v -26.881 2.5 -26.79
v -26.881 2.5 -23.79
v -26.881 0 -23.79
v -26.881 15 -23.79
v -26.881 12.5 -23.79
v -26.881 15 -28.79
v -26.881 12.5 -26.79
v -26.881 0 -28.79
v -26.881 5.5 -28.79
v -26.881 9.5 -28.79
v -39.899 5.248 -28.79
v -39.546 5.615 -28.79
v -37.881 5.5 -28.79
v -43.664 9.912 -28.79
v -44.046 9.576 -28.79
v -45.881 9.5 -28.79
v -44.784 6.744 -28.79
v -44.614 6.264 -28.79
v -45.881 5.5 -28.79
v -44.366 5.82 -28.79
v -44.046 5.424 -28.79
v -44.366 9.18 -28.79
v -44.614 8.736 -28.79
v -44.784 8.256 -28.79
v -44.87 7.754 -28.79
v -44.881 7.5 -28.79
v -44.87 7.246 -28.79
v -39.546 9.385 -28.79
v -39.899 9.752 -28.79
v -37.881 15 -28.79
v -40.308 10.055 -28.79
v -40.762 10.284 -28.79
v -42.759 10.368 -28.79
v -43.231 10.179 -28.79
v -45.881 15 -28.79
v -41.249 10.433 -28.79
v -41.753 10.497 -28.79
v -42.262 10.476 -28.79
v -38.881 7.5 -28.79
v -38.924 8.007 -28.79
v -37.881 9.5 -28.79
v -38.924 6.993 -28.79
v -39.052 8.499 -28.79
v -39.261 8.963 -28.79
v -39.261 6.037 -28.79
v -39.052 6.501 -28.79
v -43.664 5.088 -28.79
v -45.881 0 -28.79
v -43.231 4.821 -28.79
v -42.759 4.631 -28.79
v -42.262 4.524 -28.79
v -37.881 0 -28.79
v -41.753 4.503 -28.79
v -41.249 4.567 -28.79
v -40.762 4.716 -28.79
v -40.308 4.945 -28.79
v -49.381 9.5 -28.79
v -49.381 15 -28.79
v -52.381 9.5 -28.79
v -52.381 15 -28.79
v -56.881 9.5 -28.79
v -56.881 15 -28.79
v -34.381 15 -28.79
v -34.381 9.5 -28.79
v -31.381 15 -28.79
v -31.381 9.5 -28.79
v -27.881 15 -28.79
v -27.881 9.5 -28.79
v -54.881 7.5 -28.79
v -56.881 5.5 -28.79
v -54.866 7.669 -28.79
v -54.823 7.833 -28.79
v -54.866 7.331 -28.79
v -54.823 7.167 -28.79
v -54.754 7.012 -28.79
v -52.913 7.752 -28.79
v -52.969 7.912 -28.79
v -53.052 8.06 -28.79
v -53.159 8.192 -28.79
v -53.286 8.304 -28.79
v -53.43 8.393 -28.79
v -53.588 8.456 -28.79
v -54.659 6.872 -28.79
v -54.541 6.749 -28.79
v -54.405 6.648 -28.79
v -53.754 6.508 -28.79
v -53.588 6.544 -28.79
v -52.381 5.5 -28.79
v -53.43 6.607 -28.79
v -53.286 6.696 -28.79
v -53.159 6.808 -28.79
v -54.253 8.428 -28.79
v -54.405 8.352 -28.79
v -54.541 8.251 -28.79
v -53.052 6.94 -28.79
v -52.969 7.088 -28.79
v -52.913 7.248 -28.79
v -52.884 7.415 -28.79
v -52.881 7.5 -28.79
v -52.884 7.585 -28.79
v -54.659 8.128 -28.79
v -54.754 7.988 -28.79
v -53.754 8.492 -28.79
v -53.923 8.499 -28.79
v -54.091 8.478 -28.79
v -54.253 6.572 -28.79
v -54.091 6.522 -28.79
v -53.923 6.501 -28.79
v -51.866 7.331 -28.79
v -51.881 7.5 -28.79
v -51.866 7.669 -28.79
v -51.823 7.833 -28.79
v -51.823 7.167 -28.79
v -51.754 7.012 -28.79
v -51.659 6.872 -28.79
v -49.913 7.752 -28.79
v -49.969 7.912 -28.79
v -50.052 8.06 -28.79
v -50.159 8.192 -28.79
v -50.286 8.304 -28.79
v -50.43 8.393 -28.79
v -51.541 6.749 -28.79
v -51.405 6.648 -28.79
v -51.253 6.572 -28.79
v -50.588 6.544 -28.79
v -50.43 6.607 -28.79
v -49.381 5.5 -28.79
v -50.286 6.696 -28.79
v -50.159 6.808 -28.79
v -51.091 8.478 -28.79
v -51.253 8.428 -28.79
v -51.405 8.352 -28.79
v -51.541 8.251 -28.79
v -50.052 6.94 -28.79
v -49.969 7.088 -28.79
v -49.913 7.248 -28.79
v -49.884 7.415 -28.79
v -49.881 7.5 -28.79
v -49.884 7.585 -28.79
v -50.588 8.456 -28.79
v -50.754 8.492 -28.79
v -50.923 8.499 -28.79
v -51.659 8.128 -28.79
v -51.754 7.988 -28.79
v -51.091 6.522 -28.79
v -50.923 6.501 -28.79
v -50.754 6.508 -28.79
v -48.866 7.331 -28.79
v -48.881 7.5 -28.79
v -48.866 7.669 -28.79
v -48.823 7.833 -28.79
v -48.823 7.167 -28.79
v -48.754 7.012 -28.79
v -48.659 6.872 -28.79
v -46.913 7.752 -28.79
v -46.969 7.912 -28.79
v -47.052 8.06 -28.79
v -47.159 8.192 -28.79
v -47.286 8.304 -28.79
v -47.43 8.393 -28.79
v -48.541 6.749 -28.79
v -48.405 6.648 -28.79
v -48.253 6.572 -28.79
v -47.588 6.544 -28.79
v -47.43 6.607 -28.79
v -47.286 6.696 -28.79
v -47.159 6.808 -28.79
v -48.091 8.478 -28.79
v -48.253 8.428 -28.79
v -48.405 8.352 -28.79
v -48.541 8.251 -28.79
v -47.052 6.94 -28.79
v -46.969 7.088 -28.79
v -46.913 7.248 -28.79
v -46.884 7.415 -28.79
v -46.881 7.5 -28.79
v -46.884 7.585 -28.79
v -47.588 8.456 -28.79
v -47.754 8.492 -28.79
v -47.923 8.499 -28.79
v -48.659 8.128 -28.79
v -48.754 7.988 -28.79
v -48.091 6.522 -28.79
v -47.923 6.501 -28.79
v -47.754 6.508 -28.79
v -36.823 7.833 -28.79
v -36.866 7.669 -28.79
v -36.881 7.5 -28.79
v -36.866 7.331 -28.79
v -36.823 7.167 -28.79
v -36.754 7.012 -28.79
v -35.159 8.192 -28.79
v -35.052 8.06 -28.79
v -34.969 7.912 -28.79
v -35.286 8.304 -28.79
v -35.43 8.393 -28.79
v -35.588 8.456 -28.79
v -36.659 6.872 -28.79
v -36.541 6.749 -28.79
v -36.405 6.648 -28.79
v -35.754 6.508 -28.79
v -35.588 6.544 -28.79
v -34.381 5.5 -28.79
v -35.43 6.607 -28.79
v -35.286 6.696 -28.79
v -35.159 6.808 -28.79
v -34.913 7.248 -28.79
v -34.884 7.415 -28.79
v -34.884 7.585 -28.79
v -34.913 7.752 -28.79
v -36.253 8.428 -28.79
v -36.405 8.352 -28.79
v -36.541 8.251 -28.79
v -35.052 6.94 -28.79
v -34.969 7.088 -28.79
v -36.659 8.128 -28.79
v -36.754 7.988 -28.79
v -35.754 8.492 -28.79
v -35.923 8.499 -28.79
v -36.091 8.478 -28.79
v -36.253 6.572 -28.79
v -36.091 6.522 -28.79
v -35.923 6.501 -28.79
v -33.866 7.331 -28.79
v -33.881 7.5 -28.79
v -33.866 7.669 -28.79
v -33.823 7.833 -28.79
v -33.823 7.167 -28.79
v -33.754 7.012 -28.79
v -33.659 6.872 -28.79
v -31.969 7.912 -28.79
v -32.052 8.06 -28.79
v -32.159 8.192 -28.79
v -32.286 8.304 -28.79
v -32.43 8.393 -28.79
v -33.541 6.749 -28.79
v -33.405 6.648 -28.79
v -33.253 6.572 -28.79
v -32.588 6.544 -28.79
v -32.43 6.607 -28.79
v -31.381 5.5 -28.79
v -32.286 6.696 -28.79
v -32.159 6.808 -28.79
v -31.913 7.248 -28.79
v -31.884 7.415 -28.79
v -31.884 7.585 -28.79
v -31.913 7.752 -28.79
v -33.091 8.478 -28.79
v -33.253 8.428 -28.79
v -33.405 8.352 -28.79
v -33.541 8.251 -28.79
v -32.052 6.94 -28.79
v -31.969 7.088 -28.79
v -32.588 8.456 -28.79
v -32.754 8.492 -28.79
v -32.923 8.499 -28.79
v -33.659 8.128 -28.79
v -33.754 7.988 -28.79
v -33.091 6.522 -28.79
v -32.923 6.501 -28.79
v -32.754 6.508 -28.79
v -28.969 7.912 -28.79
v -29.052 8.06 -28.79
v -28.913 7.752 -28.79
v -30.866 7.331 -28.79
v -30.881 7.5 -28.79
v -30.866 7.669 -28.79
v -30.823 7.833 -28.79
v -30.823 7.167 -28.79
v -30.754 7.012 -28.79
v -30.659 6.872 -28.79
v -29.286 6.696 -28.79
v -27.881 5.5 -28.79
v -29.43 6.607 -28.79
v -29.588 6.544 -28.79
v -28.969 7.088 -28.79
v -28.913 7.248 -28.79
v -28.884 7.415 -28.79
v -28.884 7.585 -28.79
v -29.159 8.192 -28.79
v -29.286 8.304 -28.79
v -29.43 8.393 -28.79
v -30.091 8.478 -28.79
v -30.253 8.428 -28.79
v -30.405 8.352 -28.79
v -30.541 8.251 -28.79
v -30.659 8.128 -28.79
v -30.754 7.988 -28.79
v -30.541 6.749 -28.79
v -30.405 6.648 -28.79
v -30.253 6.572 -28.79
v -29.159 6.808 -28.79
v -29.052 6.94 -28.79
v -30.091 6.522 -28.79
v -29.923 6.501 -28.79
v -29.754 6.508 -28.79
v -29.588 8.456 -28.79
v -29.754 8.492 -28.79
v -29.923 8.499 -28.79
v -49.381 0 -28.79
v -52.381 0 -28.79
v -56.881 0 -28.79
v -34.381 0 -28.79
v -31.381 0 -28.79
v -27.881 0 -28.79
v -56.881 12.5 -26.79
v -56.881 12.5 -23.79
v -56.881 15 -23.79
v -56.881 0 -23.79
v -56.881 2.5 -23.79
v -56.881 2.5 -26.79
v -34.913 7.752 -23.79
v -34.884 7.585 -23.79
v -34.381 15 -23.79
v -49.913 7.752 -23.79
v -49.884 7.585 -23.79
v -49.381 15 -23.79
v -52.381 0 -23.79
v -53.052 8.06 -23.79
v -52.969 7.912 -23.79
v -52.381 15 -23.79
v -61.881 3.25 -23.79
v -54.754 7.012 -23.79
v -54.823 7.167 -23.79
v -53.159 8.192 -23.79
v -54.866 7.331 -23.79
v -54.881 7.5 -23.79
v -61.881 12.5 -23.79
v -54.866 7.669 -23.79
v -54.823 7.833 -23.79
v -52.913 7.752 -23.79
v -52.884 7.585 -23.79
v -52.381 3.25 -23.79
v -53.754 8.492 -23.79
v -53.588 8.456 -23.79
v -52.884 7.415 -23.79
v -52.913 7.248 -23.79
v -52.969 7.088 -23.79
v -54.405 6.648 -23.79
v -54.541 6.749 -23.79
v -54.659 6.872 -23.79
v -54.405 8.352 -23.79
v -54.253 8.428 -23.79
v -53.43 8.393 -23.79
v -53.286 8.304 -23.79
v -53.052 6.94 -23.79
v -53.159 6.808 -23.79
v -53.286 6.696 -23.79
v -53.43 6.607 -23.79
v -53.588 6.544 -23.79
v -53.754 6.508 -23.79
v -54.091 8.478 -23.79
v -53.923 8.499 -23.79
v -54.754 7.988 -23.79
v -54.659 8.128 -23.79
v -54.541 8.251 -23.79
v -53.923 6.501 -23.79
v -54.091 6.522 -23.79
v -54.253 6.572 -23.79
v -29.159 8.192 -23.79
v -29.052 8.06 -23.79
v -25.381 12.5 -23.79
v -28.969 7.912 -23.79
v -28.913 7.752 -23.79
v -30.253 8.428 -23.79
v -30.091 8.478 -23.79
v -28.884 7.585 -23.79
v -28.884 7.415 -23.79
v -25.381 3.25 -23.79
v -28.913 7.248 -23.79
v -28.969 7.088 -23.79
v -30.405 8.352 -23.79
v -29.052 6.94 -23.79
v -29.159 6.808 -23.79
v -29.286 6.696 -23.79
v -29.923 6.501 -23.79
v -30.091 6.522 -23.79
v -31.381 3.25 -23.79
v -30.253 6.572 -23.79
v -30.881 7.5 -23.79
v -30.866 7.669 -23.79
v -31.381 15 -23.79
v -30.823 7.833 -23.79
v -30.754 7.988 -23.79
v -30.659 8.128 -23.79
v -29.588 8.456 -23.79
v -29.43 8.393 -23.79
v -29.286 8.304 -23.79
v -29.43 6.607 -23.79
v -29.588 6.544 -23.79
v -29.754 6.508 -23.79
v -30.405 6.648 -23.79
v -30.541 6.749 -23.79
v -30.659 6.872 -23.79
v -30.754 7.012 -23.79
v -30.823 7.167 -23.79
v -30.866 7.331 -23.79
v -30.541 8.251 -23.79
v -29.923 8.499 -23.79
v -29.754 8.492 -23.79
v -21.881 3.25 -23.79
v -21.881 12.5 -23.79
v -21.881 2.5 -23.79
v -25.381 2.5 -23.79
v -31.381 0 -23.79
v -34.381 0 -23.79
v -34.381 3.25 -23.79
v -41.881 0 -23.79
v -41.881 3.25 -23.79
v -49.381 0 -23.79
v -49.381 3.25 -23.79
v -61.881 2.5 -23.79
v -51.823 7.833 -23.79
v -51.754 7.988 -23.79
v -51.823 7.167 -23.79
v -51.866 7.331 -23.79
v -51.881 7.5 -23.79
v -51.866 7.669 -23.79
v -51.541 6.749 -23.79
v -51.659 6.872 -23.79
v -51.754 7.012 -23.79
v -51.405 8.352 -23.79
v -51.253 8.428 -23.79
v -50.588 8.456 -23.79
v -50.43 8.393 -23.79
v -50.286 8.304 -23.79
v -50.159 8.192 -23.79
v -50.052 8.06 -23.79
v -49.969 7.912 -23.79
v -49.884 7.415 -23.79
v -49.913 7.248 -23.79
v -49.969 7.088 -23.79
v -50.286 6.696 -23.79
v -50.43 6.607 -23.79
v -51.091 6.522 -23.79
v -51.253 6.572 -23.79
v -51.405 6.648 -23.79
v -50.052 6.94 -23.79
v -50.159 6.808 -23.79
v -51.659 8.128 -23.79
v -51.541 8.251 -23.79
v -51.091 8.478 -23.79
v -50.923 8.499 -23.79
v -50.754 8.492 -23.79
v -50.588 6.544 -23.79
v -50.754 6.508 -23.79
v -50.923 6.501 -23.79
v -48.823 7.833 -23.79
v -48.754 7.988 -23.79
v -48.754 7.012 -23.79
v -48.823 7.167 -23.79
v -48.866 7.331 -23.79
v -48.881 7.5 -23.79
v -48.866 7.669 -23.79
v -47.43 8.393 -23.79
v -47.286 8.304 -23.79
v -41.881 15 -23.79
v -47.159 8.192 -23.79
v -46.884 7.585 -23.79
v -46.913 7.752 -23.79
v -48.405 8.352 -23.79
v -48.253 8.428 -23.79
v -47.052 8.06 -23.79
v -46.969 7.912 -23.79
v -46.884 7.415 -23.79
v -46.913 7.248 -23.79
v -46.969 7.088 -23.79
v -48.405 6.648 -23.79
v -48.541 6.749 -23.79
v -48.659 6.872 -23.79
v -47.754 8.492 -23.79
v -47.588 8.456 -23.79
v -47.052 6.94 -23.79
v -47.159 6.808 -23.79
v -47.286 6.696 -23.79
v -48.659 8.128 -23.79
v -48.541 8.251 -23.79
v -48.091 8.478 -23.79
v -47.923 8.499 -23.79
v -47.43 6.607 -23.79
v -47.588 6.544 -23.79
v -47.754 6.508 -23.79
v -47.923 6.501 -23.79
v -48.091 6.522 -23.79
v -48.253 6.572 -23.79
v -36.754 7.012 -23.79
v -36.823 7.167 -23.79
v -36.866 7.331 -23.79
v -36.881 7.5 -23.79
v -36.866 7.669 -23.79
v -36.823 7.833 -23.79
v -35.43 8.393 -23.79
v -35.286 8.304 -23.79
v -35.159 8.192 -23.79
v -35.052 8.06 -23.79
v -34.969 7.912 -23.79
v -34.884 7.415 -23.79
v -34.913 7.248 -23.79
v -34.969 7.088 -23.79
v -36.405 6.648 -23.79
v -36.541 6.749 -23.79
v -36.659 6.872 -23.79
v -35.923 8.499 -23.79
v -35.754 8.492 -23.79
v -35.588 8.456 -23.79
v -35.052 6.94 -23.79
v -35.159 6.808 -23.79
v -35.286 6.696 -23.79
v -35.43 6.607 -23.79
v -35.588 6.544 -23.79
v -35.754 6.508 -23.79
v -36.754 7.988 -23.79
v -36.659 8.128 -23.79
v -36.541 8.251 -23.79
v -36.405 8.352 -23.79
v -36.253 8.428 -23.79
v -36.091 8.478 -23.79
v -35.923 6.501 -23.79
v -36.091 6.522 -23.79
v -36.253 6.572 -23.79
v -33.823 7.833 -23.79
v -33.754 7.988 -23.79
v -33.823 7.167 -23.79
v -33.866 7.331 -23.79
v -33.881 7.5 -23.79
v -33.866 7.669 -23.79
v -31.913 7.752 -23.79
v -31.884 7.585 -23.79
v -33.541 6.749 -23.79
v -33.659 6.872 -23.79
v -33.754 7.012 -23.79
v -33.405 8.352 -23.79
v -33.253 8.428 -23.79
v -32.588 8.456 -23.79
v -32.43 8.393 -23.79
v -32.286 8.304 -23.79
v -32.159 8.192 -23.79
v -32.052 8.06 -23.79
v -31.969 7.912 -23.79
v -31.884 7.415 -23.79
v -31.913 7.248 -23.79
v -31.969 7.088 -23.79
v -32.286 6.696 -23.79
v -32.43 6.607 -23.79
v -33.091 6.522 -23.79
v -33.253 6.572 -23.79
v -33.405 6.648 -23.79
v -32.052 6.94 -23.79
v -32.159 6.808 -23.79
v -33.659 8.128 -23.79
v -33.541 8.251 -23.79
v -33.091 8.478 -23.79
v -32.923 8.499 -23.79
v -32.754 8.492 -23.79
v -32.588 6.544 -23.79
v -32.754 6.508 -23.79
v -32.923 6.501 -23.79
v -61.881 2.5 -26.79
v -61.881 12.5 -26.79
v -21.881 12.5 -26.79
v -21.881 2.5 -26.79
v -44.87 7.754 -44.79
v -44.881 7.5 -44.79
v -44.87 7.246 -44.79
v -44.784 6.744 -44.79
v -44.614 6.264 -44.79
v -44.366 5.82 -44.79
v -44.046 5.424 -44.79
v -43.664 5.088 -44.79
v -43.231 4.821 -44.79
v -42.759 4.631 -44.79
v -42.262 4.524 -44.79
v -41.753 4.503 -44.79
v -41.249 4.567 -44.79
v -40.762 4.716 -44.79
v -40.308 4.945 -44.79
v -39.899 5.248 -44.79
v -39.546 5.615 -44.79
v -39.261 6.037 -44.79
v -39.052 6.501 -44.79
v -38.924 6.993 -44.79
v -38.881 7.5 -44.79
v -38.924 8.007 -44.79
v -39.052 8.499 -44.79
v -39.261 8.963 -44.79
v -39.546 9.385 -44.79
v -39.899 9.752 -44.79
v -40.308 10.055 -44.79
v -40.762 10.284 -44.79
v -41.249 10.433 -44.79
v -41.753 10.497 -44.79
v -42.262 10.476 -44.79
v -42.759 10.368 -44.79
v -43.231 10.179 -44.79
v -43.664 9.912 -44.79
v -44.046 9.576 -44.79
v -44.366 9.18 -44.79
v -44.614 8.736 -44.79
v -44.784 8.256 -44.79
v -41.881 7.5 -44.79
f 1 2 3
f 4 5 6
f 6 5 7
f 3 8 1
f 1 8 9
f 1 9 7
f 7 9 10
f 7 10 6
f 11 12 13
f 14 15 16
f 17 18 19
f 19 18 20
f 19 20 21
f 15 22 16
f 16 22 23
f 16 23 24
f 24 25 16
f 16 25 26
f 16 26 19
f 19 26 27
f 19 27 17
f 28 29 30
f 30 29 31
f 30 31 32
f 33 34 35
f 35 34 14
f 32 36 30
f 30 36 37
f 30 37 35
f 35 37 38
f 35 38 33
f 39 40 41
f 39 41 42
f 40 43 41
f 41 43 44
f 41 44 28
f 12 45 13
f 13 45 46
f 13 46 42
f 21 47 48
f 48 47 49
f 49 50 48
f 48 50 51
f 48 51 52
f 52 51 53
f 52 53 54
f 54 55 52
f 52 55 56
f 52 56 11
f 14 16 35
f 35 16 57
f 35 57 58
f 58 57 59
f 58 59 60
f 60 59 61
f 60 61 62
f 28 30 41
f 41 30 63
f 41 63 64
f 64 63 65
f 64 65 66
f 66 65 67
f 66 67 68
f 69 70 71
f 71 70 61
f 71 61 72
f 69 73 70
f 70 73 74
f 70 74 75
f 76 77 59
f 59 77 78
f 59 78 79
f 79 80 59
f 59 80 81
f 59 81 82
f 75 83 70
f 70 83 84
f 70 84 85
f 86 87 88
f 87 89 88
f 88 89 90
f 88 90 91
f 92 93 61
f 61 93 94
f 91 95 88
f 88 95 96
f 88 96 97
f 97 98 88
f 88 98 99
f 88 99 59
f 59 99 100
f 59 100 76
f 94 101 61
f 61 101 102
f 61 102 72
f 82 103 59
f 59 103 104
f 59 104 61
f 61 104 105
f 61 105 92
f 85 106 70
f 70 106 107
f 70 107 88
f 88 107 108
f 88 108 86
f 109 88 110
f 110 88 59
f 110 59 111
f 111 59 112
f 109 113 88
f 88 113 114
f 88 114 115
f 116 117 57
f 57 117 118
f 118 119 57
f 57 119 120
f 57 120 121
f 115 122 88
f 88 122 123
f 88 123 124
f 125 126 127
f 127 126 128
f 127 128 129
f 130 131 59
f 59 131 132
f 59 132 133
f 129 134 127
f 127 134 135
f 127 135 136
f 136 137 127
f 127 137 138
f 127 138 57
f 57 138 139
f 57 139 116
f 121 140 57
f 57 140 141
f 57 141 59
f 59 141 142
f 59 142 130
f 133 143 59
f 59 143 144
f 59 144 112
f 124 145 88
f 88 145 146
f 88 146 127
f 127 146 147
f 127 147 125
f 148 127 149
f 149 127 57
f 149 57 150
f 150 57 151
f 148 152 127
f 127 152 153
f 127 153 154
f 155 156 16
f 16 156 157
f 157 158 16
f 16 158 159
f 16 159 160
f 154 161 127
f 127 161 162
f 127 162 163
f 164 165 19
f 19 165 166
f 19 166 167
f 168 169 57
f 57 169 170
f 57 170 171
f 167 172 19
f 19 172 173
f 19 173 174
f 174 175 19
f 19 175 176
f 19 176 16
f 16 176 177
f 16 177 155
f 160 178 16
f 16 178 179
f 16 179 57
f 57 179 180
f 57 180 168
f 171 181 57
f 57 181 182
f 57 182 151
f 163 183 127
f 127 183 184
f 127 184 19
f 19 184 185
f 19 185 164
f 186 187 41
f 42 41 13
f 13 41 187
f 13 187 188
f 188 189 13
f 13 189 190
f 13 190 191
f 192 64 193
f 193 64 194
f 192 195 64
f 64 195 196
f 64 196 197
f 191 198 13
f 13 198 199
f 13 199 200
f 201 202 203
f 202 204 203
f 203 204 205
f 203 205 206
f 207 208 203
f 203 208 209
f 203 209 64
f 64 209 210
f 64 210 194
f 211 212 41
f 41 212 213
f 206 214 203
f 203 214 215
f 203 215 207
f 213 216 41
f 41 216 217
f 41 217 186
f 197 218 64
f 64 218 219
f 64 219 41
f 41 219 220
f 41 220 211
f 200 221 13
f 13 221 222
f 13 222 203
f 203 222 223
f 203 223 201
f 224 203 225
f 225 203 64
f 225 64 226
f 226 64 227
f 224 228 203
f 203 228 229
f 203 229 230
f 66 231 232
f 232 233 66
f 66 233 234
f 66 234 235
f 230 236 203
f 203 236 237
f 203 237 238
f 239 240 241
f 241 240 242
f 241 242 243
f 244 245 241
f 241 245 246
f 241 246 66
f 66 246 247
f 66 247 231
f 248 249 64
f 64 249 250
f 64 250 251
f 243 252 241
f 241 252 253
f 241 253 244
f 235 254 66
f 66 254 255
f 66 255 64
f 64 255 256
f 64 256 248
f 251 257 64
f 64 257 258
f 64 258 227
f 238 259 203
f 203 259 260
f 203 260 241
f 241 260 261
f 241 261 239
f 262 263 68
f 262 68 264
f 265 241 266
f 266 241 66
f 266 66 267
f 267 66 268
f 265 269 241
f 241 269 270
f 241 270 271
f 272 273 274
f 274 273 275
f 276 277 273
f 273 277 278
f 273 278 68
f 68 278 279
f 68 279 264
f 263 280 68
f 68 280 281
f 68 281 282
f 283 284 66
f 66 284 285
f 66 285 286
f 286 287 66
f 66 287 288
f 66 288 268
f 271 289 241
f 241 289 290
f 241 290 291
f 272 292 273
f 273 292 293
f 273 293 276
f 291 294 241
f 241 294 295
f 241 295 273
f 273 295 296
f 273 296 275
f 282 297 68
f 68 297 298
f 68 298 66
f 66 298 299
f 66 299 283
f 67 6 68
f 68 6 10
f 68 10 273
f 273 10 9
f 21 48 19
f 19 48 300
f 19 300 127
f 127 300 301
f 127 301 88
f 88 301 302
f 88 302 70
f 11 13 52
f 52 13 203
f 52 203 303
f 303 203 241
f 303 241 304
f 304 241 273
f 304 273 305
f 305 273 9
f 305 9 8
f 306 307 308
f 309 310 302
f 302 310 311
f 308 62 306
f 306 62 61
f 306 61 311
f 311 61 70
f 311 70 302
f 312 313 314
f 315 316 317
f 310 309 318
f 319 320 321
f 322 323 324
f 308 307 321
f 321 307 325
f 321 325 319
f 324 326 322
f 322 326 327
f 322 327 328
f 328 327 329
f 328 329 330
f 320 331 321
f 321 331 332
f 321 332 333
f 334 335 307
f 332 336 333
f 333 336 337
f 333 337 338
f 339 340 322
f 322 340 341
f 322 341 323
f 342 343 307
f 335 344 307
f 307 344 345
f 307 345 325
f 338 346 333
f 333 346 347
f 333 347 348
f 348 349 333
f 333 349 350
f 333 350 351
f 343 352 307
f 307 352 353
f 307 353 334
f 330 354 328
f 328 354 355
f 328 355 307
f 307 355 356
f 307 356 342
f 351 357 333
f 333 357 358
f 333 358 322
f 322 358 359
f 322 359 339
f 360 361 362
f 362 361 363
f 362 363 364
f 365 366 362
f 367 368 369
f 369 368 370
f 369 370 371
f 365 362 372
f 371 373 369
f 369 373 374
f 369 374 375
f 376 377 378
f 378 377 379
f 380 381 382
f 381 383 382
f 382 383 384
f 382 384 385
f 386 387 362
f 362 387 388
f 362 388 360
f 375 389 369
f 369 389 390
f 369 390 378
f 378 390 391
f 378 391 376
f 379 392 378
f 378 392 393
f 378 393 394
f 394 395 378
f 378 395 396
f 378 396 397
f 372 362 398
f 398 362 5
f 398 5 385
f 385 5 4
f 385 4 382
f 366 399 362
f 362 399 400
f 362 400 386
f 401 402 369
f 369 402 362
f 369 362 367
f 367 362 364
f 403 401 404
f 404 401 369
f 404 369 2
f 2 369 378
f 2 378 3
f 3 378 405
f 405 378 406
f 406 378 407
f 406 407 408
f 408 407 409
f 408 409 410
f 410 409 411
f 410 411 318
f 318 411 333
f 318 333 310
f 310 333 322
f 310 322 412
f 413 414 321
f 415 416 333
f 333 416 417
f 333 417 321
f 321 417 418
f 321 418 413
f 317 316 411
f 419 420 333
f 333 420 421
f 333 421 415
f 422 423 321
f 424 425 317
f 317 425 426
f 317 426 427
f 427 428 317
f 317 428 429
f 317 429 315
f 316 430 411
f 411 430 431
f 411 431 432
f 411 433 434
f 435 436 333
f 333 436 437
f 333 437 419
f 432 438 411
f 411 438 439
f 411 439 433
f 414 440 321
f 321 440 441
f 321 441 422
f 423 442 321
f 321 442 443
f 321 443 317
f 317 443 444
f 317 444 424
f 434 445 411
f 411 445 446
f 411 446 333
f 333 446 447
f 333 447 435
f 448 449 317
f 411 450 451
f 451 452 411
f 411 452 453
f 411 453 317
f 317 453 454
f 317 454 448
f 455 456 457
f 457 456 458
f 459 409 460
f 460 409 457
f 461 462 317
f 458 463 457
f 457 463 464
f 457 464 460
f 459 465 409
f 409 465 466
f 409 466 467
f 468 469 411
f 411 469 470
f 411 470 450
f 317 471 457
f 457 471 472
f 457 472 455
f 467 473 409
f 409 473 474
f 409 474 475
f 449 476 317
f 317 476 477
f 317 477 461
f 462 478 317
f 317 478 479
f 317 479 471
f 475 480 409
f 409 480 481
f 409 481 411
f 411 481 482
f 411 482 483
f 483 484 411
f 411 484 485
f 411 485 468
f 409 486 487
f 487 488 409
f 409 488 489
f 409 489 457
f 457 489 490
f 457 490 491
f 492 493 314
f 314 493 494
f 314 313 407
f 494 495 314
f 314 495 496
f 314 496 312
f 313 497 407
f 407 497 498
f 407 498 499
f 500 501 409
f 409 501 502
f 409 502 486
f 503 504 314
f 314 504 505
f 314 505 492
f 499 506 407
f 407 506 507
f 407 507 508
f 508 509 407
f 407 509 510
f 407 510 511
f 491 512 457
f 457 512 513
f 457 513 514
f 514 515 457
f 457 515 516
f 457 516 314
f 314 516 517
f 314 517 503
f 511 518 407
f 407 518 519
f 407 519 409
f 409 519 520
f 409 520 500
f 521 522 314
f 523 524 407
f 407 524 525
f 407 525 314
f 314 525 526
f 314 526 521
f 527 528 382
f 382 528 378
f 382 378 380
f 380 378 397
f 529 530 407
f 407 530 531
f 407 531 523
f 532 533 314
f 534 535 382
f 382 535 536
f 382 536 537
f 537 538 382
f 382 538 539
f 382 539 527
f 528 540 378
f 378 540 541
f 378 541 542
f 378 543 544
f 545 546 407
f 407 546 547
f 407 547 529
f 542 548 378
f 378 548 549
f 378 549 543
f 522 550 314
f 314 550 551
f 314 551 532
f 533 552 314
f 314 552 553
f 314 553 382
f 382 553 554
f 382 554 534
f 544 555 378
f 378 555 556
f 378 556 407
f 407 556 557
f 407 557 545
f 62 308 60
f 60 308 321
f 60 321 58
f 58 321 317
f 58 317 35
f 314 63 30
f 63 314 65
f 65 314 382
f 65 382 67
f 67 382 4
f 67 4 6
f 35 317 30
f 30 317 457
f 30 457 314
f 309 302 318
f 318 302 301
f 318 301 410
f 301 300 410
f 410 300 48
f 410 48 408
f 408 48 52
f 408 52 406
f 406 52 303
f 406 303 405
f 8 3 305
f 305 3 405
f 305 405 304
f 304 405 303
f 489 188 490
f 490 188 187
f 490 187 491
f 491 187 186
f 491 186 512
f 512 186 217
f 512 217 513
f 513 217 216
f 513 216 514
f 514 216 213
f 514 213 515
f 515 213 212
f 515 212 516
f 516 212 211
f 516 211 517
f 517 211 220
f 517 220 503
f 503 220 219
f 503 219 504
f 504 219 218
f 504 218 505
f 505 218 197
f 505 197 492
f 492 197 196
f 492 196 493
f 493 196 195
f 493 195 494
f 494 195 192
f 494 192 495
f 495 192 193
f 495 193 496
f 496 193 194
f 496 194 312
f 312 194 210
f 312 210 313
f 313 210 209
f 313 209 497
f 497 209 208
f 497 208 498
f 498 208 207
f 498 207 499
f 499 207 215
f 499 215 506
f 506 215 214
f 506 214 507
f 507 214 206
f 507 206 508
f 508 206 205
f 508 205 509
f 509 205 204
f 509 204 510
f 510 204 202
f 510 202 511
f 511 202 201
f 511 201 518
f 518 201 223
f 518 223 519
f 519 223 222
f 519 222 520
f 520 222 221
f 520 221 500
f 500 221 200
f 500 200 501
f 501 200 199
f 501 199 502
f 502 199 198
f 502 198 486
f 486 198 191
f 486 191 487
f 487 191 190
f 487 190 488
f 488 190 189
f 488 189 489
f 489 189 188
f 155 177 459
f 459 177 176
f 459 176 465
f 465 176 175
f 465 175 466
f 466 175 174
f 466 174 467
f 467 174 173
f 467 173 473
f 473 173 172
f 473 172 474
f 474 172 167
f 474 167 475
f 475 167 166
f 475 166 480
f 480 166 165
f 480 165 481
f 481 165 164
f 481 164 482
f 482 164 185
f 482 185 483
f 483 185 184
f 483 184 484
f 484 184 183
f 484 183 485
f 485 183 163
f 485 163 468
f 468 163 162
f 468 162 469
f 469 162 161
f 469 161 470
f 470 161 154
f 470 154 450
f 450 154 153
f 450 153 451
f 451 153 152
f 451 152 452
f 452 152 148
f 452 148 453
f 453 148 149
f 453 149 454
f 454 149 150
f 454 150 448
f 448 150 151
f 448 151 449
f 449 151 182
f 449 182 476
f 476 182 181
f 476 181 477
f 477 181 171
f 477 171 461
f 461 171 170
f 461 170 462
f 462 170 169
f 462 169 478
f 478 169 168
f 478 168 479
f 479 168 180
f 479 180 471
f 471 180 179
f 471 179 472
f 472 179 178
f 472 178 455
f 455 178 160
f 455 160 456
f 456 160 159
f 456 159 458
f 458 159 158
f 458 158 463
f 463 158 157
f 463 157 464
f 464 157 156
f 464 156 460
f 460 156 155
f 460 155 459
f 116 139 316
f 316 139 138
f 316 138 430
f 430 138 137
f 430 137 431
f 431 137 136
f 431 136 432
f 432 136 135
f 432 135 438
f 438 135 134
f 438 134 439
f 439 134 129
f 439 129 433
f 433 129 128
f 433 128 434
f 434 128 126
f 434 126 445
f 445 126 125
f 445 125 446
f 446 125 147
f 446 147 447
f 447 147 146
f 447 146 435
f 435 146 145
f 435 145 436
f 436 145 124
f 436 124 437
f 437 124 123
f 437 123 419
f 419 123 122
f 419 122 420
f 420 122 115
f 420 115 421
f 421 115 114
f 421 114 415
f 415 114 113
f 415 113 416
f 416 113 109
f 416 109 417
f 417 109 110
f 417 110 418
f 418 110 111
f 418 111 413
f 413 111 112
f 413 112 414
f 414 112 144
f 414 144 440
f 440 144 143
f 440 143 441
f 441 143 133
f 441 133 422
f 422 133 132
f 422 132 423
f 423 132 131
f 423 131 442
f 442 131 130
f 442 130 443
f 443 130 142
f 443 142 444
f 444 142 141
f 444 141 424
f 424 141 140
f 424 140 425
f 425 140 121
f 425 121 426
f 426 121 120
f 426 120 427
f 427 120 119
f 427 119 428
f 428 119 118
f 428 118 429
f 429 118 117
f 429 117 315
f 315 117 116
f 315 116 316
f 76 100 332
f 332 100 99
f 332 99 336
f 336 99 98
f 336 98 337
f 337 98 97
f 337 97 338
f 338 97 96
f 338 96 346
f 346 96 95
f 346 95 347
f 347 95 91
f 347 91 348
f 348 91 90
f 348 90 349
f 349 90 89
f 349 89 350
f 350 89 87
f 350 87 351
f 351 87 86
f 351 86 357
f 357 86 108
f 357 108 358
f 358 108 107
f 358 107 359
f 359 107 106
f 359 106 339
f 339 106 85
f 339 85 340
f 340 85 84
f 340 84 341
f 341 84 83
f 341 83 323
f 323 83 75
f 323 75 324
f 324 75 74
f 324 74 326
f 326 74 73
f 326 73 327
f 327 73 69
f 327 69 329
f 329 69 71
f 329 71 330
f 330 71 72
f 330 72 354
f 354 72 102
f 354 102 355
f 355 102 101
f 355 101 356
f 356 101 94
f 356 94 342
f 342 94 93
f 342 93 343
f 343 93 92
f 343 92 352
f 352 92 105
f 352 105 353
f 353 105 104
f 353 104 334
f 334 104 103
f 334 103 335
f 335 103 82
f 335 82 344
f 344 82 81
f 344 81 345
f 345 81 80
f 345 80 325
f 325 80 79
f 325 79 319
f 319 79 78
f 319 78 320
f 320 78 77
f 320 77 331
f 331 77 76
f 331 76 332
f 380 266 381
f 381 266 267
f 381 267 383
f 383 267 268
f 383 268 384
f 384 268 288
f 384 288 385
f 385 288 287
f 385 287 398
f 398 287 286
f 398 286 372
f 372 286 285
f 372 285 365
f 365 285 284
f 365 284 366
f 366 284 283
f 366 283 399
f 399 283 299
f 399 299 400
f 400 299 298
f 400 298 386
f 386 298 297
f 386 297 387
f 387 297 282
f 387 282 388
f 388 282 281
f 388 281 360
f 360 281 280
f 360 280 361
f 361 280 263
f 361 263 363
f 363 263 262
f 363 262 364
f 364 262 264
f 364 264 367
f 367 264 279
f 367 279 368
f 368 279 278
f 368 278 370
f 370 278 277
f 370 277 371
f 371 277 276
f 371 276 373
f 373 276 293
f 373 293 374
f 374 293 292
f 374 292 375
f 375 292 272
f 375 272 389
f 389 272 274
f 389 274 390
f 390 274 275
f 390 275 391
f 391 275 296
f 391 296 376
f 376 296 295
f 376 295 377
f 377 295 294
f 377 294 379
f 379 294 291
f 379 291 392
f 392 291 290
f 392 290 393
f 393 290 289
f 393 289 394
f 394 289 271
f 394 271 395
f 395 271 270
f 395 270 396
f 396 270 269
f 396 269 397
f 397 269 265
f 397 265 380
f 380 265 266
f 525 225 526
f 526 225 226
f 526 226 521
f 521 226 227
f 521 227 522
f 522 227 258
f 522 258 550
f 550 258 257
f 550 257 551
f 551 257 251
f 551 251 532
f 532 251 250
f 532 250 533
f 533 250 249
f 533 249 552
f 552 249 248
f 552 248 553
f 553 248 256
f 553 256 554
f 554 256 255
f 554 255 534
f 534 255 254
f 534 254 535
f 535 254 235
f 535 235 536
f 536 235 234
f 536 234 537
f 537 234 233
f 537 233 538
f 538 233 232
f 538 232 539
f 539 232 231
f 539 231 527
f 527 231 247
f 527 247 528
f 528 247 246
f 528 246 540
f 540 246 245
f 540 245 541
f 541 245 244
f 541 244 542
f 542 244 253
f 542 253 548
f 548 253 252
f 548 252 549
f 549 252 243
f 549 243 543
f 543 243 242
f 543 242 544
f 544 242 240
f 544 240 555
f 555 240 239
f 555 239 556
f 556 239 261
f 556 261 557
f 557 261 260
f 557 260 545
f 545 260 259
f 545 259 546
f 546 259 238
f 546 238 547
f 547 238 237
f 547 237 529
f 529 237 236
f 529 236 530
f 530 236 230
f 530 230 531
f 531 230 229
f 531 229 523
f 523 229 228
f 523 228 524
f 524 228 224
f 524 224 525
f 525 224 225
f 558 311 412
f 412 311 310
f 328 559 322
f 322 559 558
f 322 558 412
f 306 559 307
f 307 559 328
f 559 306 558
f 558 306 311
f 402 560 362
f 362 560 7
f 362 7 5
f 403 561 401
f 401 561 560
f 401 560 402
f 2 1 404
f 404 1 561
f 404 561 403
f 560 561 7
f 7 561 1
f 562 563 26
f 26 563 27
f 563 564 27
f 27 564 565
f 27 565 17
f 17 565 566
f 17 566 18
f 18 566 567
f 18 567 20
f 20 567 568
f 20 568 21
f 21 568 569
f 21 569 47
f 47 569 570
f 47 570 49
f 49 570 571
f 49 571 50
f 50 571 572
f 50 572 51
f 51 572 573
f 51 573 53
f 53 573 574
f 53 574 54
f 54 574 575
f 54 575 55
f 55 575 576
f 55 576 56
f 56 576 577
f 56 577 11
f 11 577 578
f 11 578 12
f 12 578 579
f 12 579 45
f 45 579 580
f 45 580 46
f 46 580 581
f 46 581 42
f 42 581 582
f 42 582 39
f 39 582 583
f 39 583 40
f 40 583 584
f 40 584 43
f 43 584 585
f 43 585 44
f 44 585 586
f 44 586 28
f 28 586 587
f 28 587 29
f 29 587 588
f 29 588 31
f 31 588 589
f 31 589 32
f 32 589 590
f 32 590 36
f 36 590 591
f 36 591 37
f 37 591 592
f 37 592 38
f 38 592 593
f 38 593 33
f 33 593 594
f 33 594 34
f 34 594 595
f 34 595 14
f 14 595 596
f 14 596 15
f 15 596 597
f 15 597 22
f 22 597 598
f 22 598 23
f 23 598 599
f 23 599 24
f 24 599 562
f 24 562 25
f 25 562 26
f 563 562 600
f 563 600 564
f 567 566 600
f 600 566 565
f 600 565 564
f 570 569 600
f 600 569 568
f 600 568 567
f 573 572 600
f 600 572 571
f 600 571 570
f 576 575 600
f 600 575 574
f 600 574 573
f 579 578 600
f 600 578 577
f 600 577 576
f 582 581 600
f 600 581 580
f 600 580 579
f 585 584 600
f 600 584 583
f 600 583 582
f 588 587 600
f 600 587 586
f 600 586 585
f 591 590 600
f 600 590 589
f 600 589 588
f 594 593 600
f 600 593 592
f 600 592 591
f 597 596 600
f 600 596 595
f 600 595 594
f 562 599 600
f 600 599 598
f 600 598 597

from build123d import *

# Parameters (mm, degrees)
SKETCH1_W           = 30
SKETCH1_H           = 5
BOSS_EXTRUDE1_DEPTH = 15
SKETCH3_R           = 1
CUT_EXTRUDE2_DEPTH  = 5
SKETCH5_W           = 5
SKETCH5_H           = 10
BOSS_EXTRUDE2_DEPTH = 3
SKETCH4_R           = 3
BOSS_EXTRUDE3_DEPTH = 16


with BuildPart() as part:
    # Sketch1 → Boss-Extrude1 (new body)
    with BuildSketch(Plane(origin=(0, 0, 0), x_dir=(1, 0, 0), z_dir=(0, 1, 0))):
        with Locations((-41.880536913, 26.290268456)):
            Rectangle(SKETCH1_W, SKETCH1_H)
    extrude(amount=BOSS_EXTRUDE1_DEPTH)

    # Sketch3 → Cut-Extrude2 (cut)
    with BuildSketch(Plane(origin=(0, 0, -28.790268456), x_dir=(-1, 0, 0), z_dir=(0, 0, -1))):
        with Locations((35.880536913, 7.5)):
            Circle(SKETCH3_R)
        with Locations((32.880536913, 7.5)):
            Circle(SKETCH3_R)
        with Locations((29.880536913, 7.5)):
            Circle(SKETCH3_R)
        with Locations((53.880536913, 7.5)):
            Circle(SKETCH3_R)
        with Locations((50.880536913, 7.5)):
            Circle(SKETCH3_R)
        with Locations((47.880536913, 7.5)):
            Circle(SKETCH3_R)
    extrude(amount=-CUT_EXTRUDE2_DEPTH, mode=Mode.SUBTRACT)

    # Sketch5 → Boss-Extrude2 (add)
    with BuildSketch(Plane.XY.offset(-23.790268456)):
        with Locations((-59.380536913, 7.5)):
            Rectangle(SKETCH5_W, SKETCH5_H)
        with Locations((-24.380536913, 7.5)):
            Rectangle(SKETCH5_W, SKETCH5_H)
    extrude(amount=-BOSS_EXTRUDE2_DEPTH)

    # Sketch4 → Boss-Extrude3 (add)
    with BuildSketch(Plane(origin=(0, 0, -28.790268456), x_dir=(-1, 0, 0), z_dir=(0, 0, -1))):
        with Locations((41.880536913, 7.5)):
            Circle(SKETCH4_R)
    extrude(amount=BOSS_EXTRUDE3_DEPTH)


solid = part.part
